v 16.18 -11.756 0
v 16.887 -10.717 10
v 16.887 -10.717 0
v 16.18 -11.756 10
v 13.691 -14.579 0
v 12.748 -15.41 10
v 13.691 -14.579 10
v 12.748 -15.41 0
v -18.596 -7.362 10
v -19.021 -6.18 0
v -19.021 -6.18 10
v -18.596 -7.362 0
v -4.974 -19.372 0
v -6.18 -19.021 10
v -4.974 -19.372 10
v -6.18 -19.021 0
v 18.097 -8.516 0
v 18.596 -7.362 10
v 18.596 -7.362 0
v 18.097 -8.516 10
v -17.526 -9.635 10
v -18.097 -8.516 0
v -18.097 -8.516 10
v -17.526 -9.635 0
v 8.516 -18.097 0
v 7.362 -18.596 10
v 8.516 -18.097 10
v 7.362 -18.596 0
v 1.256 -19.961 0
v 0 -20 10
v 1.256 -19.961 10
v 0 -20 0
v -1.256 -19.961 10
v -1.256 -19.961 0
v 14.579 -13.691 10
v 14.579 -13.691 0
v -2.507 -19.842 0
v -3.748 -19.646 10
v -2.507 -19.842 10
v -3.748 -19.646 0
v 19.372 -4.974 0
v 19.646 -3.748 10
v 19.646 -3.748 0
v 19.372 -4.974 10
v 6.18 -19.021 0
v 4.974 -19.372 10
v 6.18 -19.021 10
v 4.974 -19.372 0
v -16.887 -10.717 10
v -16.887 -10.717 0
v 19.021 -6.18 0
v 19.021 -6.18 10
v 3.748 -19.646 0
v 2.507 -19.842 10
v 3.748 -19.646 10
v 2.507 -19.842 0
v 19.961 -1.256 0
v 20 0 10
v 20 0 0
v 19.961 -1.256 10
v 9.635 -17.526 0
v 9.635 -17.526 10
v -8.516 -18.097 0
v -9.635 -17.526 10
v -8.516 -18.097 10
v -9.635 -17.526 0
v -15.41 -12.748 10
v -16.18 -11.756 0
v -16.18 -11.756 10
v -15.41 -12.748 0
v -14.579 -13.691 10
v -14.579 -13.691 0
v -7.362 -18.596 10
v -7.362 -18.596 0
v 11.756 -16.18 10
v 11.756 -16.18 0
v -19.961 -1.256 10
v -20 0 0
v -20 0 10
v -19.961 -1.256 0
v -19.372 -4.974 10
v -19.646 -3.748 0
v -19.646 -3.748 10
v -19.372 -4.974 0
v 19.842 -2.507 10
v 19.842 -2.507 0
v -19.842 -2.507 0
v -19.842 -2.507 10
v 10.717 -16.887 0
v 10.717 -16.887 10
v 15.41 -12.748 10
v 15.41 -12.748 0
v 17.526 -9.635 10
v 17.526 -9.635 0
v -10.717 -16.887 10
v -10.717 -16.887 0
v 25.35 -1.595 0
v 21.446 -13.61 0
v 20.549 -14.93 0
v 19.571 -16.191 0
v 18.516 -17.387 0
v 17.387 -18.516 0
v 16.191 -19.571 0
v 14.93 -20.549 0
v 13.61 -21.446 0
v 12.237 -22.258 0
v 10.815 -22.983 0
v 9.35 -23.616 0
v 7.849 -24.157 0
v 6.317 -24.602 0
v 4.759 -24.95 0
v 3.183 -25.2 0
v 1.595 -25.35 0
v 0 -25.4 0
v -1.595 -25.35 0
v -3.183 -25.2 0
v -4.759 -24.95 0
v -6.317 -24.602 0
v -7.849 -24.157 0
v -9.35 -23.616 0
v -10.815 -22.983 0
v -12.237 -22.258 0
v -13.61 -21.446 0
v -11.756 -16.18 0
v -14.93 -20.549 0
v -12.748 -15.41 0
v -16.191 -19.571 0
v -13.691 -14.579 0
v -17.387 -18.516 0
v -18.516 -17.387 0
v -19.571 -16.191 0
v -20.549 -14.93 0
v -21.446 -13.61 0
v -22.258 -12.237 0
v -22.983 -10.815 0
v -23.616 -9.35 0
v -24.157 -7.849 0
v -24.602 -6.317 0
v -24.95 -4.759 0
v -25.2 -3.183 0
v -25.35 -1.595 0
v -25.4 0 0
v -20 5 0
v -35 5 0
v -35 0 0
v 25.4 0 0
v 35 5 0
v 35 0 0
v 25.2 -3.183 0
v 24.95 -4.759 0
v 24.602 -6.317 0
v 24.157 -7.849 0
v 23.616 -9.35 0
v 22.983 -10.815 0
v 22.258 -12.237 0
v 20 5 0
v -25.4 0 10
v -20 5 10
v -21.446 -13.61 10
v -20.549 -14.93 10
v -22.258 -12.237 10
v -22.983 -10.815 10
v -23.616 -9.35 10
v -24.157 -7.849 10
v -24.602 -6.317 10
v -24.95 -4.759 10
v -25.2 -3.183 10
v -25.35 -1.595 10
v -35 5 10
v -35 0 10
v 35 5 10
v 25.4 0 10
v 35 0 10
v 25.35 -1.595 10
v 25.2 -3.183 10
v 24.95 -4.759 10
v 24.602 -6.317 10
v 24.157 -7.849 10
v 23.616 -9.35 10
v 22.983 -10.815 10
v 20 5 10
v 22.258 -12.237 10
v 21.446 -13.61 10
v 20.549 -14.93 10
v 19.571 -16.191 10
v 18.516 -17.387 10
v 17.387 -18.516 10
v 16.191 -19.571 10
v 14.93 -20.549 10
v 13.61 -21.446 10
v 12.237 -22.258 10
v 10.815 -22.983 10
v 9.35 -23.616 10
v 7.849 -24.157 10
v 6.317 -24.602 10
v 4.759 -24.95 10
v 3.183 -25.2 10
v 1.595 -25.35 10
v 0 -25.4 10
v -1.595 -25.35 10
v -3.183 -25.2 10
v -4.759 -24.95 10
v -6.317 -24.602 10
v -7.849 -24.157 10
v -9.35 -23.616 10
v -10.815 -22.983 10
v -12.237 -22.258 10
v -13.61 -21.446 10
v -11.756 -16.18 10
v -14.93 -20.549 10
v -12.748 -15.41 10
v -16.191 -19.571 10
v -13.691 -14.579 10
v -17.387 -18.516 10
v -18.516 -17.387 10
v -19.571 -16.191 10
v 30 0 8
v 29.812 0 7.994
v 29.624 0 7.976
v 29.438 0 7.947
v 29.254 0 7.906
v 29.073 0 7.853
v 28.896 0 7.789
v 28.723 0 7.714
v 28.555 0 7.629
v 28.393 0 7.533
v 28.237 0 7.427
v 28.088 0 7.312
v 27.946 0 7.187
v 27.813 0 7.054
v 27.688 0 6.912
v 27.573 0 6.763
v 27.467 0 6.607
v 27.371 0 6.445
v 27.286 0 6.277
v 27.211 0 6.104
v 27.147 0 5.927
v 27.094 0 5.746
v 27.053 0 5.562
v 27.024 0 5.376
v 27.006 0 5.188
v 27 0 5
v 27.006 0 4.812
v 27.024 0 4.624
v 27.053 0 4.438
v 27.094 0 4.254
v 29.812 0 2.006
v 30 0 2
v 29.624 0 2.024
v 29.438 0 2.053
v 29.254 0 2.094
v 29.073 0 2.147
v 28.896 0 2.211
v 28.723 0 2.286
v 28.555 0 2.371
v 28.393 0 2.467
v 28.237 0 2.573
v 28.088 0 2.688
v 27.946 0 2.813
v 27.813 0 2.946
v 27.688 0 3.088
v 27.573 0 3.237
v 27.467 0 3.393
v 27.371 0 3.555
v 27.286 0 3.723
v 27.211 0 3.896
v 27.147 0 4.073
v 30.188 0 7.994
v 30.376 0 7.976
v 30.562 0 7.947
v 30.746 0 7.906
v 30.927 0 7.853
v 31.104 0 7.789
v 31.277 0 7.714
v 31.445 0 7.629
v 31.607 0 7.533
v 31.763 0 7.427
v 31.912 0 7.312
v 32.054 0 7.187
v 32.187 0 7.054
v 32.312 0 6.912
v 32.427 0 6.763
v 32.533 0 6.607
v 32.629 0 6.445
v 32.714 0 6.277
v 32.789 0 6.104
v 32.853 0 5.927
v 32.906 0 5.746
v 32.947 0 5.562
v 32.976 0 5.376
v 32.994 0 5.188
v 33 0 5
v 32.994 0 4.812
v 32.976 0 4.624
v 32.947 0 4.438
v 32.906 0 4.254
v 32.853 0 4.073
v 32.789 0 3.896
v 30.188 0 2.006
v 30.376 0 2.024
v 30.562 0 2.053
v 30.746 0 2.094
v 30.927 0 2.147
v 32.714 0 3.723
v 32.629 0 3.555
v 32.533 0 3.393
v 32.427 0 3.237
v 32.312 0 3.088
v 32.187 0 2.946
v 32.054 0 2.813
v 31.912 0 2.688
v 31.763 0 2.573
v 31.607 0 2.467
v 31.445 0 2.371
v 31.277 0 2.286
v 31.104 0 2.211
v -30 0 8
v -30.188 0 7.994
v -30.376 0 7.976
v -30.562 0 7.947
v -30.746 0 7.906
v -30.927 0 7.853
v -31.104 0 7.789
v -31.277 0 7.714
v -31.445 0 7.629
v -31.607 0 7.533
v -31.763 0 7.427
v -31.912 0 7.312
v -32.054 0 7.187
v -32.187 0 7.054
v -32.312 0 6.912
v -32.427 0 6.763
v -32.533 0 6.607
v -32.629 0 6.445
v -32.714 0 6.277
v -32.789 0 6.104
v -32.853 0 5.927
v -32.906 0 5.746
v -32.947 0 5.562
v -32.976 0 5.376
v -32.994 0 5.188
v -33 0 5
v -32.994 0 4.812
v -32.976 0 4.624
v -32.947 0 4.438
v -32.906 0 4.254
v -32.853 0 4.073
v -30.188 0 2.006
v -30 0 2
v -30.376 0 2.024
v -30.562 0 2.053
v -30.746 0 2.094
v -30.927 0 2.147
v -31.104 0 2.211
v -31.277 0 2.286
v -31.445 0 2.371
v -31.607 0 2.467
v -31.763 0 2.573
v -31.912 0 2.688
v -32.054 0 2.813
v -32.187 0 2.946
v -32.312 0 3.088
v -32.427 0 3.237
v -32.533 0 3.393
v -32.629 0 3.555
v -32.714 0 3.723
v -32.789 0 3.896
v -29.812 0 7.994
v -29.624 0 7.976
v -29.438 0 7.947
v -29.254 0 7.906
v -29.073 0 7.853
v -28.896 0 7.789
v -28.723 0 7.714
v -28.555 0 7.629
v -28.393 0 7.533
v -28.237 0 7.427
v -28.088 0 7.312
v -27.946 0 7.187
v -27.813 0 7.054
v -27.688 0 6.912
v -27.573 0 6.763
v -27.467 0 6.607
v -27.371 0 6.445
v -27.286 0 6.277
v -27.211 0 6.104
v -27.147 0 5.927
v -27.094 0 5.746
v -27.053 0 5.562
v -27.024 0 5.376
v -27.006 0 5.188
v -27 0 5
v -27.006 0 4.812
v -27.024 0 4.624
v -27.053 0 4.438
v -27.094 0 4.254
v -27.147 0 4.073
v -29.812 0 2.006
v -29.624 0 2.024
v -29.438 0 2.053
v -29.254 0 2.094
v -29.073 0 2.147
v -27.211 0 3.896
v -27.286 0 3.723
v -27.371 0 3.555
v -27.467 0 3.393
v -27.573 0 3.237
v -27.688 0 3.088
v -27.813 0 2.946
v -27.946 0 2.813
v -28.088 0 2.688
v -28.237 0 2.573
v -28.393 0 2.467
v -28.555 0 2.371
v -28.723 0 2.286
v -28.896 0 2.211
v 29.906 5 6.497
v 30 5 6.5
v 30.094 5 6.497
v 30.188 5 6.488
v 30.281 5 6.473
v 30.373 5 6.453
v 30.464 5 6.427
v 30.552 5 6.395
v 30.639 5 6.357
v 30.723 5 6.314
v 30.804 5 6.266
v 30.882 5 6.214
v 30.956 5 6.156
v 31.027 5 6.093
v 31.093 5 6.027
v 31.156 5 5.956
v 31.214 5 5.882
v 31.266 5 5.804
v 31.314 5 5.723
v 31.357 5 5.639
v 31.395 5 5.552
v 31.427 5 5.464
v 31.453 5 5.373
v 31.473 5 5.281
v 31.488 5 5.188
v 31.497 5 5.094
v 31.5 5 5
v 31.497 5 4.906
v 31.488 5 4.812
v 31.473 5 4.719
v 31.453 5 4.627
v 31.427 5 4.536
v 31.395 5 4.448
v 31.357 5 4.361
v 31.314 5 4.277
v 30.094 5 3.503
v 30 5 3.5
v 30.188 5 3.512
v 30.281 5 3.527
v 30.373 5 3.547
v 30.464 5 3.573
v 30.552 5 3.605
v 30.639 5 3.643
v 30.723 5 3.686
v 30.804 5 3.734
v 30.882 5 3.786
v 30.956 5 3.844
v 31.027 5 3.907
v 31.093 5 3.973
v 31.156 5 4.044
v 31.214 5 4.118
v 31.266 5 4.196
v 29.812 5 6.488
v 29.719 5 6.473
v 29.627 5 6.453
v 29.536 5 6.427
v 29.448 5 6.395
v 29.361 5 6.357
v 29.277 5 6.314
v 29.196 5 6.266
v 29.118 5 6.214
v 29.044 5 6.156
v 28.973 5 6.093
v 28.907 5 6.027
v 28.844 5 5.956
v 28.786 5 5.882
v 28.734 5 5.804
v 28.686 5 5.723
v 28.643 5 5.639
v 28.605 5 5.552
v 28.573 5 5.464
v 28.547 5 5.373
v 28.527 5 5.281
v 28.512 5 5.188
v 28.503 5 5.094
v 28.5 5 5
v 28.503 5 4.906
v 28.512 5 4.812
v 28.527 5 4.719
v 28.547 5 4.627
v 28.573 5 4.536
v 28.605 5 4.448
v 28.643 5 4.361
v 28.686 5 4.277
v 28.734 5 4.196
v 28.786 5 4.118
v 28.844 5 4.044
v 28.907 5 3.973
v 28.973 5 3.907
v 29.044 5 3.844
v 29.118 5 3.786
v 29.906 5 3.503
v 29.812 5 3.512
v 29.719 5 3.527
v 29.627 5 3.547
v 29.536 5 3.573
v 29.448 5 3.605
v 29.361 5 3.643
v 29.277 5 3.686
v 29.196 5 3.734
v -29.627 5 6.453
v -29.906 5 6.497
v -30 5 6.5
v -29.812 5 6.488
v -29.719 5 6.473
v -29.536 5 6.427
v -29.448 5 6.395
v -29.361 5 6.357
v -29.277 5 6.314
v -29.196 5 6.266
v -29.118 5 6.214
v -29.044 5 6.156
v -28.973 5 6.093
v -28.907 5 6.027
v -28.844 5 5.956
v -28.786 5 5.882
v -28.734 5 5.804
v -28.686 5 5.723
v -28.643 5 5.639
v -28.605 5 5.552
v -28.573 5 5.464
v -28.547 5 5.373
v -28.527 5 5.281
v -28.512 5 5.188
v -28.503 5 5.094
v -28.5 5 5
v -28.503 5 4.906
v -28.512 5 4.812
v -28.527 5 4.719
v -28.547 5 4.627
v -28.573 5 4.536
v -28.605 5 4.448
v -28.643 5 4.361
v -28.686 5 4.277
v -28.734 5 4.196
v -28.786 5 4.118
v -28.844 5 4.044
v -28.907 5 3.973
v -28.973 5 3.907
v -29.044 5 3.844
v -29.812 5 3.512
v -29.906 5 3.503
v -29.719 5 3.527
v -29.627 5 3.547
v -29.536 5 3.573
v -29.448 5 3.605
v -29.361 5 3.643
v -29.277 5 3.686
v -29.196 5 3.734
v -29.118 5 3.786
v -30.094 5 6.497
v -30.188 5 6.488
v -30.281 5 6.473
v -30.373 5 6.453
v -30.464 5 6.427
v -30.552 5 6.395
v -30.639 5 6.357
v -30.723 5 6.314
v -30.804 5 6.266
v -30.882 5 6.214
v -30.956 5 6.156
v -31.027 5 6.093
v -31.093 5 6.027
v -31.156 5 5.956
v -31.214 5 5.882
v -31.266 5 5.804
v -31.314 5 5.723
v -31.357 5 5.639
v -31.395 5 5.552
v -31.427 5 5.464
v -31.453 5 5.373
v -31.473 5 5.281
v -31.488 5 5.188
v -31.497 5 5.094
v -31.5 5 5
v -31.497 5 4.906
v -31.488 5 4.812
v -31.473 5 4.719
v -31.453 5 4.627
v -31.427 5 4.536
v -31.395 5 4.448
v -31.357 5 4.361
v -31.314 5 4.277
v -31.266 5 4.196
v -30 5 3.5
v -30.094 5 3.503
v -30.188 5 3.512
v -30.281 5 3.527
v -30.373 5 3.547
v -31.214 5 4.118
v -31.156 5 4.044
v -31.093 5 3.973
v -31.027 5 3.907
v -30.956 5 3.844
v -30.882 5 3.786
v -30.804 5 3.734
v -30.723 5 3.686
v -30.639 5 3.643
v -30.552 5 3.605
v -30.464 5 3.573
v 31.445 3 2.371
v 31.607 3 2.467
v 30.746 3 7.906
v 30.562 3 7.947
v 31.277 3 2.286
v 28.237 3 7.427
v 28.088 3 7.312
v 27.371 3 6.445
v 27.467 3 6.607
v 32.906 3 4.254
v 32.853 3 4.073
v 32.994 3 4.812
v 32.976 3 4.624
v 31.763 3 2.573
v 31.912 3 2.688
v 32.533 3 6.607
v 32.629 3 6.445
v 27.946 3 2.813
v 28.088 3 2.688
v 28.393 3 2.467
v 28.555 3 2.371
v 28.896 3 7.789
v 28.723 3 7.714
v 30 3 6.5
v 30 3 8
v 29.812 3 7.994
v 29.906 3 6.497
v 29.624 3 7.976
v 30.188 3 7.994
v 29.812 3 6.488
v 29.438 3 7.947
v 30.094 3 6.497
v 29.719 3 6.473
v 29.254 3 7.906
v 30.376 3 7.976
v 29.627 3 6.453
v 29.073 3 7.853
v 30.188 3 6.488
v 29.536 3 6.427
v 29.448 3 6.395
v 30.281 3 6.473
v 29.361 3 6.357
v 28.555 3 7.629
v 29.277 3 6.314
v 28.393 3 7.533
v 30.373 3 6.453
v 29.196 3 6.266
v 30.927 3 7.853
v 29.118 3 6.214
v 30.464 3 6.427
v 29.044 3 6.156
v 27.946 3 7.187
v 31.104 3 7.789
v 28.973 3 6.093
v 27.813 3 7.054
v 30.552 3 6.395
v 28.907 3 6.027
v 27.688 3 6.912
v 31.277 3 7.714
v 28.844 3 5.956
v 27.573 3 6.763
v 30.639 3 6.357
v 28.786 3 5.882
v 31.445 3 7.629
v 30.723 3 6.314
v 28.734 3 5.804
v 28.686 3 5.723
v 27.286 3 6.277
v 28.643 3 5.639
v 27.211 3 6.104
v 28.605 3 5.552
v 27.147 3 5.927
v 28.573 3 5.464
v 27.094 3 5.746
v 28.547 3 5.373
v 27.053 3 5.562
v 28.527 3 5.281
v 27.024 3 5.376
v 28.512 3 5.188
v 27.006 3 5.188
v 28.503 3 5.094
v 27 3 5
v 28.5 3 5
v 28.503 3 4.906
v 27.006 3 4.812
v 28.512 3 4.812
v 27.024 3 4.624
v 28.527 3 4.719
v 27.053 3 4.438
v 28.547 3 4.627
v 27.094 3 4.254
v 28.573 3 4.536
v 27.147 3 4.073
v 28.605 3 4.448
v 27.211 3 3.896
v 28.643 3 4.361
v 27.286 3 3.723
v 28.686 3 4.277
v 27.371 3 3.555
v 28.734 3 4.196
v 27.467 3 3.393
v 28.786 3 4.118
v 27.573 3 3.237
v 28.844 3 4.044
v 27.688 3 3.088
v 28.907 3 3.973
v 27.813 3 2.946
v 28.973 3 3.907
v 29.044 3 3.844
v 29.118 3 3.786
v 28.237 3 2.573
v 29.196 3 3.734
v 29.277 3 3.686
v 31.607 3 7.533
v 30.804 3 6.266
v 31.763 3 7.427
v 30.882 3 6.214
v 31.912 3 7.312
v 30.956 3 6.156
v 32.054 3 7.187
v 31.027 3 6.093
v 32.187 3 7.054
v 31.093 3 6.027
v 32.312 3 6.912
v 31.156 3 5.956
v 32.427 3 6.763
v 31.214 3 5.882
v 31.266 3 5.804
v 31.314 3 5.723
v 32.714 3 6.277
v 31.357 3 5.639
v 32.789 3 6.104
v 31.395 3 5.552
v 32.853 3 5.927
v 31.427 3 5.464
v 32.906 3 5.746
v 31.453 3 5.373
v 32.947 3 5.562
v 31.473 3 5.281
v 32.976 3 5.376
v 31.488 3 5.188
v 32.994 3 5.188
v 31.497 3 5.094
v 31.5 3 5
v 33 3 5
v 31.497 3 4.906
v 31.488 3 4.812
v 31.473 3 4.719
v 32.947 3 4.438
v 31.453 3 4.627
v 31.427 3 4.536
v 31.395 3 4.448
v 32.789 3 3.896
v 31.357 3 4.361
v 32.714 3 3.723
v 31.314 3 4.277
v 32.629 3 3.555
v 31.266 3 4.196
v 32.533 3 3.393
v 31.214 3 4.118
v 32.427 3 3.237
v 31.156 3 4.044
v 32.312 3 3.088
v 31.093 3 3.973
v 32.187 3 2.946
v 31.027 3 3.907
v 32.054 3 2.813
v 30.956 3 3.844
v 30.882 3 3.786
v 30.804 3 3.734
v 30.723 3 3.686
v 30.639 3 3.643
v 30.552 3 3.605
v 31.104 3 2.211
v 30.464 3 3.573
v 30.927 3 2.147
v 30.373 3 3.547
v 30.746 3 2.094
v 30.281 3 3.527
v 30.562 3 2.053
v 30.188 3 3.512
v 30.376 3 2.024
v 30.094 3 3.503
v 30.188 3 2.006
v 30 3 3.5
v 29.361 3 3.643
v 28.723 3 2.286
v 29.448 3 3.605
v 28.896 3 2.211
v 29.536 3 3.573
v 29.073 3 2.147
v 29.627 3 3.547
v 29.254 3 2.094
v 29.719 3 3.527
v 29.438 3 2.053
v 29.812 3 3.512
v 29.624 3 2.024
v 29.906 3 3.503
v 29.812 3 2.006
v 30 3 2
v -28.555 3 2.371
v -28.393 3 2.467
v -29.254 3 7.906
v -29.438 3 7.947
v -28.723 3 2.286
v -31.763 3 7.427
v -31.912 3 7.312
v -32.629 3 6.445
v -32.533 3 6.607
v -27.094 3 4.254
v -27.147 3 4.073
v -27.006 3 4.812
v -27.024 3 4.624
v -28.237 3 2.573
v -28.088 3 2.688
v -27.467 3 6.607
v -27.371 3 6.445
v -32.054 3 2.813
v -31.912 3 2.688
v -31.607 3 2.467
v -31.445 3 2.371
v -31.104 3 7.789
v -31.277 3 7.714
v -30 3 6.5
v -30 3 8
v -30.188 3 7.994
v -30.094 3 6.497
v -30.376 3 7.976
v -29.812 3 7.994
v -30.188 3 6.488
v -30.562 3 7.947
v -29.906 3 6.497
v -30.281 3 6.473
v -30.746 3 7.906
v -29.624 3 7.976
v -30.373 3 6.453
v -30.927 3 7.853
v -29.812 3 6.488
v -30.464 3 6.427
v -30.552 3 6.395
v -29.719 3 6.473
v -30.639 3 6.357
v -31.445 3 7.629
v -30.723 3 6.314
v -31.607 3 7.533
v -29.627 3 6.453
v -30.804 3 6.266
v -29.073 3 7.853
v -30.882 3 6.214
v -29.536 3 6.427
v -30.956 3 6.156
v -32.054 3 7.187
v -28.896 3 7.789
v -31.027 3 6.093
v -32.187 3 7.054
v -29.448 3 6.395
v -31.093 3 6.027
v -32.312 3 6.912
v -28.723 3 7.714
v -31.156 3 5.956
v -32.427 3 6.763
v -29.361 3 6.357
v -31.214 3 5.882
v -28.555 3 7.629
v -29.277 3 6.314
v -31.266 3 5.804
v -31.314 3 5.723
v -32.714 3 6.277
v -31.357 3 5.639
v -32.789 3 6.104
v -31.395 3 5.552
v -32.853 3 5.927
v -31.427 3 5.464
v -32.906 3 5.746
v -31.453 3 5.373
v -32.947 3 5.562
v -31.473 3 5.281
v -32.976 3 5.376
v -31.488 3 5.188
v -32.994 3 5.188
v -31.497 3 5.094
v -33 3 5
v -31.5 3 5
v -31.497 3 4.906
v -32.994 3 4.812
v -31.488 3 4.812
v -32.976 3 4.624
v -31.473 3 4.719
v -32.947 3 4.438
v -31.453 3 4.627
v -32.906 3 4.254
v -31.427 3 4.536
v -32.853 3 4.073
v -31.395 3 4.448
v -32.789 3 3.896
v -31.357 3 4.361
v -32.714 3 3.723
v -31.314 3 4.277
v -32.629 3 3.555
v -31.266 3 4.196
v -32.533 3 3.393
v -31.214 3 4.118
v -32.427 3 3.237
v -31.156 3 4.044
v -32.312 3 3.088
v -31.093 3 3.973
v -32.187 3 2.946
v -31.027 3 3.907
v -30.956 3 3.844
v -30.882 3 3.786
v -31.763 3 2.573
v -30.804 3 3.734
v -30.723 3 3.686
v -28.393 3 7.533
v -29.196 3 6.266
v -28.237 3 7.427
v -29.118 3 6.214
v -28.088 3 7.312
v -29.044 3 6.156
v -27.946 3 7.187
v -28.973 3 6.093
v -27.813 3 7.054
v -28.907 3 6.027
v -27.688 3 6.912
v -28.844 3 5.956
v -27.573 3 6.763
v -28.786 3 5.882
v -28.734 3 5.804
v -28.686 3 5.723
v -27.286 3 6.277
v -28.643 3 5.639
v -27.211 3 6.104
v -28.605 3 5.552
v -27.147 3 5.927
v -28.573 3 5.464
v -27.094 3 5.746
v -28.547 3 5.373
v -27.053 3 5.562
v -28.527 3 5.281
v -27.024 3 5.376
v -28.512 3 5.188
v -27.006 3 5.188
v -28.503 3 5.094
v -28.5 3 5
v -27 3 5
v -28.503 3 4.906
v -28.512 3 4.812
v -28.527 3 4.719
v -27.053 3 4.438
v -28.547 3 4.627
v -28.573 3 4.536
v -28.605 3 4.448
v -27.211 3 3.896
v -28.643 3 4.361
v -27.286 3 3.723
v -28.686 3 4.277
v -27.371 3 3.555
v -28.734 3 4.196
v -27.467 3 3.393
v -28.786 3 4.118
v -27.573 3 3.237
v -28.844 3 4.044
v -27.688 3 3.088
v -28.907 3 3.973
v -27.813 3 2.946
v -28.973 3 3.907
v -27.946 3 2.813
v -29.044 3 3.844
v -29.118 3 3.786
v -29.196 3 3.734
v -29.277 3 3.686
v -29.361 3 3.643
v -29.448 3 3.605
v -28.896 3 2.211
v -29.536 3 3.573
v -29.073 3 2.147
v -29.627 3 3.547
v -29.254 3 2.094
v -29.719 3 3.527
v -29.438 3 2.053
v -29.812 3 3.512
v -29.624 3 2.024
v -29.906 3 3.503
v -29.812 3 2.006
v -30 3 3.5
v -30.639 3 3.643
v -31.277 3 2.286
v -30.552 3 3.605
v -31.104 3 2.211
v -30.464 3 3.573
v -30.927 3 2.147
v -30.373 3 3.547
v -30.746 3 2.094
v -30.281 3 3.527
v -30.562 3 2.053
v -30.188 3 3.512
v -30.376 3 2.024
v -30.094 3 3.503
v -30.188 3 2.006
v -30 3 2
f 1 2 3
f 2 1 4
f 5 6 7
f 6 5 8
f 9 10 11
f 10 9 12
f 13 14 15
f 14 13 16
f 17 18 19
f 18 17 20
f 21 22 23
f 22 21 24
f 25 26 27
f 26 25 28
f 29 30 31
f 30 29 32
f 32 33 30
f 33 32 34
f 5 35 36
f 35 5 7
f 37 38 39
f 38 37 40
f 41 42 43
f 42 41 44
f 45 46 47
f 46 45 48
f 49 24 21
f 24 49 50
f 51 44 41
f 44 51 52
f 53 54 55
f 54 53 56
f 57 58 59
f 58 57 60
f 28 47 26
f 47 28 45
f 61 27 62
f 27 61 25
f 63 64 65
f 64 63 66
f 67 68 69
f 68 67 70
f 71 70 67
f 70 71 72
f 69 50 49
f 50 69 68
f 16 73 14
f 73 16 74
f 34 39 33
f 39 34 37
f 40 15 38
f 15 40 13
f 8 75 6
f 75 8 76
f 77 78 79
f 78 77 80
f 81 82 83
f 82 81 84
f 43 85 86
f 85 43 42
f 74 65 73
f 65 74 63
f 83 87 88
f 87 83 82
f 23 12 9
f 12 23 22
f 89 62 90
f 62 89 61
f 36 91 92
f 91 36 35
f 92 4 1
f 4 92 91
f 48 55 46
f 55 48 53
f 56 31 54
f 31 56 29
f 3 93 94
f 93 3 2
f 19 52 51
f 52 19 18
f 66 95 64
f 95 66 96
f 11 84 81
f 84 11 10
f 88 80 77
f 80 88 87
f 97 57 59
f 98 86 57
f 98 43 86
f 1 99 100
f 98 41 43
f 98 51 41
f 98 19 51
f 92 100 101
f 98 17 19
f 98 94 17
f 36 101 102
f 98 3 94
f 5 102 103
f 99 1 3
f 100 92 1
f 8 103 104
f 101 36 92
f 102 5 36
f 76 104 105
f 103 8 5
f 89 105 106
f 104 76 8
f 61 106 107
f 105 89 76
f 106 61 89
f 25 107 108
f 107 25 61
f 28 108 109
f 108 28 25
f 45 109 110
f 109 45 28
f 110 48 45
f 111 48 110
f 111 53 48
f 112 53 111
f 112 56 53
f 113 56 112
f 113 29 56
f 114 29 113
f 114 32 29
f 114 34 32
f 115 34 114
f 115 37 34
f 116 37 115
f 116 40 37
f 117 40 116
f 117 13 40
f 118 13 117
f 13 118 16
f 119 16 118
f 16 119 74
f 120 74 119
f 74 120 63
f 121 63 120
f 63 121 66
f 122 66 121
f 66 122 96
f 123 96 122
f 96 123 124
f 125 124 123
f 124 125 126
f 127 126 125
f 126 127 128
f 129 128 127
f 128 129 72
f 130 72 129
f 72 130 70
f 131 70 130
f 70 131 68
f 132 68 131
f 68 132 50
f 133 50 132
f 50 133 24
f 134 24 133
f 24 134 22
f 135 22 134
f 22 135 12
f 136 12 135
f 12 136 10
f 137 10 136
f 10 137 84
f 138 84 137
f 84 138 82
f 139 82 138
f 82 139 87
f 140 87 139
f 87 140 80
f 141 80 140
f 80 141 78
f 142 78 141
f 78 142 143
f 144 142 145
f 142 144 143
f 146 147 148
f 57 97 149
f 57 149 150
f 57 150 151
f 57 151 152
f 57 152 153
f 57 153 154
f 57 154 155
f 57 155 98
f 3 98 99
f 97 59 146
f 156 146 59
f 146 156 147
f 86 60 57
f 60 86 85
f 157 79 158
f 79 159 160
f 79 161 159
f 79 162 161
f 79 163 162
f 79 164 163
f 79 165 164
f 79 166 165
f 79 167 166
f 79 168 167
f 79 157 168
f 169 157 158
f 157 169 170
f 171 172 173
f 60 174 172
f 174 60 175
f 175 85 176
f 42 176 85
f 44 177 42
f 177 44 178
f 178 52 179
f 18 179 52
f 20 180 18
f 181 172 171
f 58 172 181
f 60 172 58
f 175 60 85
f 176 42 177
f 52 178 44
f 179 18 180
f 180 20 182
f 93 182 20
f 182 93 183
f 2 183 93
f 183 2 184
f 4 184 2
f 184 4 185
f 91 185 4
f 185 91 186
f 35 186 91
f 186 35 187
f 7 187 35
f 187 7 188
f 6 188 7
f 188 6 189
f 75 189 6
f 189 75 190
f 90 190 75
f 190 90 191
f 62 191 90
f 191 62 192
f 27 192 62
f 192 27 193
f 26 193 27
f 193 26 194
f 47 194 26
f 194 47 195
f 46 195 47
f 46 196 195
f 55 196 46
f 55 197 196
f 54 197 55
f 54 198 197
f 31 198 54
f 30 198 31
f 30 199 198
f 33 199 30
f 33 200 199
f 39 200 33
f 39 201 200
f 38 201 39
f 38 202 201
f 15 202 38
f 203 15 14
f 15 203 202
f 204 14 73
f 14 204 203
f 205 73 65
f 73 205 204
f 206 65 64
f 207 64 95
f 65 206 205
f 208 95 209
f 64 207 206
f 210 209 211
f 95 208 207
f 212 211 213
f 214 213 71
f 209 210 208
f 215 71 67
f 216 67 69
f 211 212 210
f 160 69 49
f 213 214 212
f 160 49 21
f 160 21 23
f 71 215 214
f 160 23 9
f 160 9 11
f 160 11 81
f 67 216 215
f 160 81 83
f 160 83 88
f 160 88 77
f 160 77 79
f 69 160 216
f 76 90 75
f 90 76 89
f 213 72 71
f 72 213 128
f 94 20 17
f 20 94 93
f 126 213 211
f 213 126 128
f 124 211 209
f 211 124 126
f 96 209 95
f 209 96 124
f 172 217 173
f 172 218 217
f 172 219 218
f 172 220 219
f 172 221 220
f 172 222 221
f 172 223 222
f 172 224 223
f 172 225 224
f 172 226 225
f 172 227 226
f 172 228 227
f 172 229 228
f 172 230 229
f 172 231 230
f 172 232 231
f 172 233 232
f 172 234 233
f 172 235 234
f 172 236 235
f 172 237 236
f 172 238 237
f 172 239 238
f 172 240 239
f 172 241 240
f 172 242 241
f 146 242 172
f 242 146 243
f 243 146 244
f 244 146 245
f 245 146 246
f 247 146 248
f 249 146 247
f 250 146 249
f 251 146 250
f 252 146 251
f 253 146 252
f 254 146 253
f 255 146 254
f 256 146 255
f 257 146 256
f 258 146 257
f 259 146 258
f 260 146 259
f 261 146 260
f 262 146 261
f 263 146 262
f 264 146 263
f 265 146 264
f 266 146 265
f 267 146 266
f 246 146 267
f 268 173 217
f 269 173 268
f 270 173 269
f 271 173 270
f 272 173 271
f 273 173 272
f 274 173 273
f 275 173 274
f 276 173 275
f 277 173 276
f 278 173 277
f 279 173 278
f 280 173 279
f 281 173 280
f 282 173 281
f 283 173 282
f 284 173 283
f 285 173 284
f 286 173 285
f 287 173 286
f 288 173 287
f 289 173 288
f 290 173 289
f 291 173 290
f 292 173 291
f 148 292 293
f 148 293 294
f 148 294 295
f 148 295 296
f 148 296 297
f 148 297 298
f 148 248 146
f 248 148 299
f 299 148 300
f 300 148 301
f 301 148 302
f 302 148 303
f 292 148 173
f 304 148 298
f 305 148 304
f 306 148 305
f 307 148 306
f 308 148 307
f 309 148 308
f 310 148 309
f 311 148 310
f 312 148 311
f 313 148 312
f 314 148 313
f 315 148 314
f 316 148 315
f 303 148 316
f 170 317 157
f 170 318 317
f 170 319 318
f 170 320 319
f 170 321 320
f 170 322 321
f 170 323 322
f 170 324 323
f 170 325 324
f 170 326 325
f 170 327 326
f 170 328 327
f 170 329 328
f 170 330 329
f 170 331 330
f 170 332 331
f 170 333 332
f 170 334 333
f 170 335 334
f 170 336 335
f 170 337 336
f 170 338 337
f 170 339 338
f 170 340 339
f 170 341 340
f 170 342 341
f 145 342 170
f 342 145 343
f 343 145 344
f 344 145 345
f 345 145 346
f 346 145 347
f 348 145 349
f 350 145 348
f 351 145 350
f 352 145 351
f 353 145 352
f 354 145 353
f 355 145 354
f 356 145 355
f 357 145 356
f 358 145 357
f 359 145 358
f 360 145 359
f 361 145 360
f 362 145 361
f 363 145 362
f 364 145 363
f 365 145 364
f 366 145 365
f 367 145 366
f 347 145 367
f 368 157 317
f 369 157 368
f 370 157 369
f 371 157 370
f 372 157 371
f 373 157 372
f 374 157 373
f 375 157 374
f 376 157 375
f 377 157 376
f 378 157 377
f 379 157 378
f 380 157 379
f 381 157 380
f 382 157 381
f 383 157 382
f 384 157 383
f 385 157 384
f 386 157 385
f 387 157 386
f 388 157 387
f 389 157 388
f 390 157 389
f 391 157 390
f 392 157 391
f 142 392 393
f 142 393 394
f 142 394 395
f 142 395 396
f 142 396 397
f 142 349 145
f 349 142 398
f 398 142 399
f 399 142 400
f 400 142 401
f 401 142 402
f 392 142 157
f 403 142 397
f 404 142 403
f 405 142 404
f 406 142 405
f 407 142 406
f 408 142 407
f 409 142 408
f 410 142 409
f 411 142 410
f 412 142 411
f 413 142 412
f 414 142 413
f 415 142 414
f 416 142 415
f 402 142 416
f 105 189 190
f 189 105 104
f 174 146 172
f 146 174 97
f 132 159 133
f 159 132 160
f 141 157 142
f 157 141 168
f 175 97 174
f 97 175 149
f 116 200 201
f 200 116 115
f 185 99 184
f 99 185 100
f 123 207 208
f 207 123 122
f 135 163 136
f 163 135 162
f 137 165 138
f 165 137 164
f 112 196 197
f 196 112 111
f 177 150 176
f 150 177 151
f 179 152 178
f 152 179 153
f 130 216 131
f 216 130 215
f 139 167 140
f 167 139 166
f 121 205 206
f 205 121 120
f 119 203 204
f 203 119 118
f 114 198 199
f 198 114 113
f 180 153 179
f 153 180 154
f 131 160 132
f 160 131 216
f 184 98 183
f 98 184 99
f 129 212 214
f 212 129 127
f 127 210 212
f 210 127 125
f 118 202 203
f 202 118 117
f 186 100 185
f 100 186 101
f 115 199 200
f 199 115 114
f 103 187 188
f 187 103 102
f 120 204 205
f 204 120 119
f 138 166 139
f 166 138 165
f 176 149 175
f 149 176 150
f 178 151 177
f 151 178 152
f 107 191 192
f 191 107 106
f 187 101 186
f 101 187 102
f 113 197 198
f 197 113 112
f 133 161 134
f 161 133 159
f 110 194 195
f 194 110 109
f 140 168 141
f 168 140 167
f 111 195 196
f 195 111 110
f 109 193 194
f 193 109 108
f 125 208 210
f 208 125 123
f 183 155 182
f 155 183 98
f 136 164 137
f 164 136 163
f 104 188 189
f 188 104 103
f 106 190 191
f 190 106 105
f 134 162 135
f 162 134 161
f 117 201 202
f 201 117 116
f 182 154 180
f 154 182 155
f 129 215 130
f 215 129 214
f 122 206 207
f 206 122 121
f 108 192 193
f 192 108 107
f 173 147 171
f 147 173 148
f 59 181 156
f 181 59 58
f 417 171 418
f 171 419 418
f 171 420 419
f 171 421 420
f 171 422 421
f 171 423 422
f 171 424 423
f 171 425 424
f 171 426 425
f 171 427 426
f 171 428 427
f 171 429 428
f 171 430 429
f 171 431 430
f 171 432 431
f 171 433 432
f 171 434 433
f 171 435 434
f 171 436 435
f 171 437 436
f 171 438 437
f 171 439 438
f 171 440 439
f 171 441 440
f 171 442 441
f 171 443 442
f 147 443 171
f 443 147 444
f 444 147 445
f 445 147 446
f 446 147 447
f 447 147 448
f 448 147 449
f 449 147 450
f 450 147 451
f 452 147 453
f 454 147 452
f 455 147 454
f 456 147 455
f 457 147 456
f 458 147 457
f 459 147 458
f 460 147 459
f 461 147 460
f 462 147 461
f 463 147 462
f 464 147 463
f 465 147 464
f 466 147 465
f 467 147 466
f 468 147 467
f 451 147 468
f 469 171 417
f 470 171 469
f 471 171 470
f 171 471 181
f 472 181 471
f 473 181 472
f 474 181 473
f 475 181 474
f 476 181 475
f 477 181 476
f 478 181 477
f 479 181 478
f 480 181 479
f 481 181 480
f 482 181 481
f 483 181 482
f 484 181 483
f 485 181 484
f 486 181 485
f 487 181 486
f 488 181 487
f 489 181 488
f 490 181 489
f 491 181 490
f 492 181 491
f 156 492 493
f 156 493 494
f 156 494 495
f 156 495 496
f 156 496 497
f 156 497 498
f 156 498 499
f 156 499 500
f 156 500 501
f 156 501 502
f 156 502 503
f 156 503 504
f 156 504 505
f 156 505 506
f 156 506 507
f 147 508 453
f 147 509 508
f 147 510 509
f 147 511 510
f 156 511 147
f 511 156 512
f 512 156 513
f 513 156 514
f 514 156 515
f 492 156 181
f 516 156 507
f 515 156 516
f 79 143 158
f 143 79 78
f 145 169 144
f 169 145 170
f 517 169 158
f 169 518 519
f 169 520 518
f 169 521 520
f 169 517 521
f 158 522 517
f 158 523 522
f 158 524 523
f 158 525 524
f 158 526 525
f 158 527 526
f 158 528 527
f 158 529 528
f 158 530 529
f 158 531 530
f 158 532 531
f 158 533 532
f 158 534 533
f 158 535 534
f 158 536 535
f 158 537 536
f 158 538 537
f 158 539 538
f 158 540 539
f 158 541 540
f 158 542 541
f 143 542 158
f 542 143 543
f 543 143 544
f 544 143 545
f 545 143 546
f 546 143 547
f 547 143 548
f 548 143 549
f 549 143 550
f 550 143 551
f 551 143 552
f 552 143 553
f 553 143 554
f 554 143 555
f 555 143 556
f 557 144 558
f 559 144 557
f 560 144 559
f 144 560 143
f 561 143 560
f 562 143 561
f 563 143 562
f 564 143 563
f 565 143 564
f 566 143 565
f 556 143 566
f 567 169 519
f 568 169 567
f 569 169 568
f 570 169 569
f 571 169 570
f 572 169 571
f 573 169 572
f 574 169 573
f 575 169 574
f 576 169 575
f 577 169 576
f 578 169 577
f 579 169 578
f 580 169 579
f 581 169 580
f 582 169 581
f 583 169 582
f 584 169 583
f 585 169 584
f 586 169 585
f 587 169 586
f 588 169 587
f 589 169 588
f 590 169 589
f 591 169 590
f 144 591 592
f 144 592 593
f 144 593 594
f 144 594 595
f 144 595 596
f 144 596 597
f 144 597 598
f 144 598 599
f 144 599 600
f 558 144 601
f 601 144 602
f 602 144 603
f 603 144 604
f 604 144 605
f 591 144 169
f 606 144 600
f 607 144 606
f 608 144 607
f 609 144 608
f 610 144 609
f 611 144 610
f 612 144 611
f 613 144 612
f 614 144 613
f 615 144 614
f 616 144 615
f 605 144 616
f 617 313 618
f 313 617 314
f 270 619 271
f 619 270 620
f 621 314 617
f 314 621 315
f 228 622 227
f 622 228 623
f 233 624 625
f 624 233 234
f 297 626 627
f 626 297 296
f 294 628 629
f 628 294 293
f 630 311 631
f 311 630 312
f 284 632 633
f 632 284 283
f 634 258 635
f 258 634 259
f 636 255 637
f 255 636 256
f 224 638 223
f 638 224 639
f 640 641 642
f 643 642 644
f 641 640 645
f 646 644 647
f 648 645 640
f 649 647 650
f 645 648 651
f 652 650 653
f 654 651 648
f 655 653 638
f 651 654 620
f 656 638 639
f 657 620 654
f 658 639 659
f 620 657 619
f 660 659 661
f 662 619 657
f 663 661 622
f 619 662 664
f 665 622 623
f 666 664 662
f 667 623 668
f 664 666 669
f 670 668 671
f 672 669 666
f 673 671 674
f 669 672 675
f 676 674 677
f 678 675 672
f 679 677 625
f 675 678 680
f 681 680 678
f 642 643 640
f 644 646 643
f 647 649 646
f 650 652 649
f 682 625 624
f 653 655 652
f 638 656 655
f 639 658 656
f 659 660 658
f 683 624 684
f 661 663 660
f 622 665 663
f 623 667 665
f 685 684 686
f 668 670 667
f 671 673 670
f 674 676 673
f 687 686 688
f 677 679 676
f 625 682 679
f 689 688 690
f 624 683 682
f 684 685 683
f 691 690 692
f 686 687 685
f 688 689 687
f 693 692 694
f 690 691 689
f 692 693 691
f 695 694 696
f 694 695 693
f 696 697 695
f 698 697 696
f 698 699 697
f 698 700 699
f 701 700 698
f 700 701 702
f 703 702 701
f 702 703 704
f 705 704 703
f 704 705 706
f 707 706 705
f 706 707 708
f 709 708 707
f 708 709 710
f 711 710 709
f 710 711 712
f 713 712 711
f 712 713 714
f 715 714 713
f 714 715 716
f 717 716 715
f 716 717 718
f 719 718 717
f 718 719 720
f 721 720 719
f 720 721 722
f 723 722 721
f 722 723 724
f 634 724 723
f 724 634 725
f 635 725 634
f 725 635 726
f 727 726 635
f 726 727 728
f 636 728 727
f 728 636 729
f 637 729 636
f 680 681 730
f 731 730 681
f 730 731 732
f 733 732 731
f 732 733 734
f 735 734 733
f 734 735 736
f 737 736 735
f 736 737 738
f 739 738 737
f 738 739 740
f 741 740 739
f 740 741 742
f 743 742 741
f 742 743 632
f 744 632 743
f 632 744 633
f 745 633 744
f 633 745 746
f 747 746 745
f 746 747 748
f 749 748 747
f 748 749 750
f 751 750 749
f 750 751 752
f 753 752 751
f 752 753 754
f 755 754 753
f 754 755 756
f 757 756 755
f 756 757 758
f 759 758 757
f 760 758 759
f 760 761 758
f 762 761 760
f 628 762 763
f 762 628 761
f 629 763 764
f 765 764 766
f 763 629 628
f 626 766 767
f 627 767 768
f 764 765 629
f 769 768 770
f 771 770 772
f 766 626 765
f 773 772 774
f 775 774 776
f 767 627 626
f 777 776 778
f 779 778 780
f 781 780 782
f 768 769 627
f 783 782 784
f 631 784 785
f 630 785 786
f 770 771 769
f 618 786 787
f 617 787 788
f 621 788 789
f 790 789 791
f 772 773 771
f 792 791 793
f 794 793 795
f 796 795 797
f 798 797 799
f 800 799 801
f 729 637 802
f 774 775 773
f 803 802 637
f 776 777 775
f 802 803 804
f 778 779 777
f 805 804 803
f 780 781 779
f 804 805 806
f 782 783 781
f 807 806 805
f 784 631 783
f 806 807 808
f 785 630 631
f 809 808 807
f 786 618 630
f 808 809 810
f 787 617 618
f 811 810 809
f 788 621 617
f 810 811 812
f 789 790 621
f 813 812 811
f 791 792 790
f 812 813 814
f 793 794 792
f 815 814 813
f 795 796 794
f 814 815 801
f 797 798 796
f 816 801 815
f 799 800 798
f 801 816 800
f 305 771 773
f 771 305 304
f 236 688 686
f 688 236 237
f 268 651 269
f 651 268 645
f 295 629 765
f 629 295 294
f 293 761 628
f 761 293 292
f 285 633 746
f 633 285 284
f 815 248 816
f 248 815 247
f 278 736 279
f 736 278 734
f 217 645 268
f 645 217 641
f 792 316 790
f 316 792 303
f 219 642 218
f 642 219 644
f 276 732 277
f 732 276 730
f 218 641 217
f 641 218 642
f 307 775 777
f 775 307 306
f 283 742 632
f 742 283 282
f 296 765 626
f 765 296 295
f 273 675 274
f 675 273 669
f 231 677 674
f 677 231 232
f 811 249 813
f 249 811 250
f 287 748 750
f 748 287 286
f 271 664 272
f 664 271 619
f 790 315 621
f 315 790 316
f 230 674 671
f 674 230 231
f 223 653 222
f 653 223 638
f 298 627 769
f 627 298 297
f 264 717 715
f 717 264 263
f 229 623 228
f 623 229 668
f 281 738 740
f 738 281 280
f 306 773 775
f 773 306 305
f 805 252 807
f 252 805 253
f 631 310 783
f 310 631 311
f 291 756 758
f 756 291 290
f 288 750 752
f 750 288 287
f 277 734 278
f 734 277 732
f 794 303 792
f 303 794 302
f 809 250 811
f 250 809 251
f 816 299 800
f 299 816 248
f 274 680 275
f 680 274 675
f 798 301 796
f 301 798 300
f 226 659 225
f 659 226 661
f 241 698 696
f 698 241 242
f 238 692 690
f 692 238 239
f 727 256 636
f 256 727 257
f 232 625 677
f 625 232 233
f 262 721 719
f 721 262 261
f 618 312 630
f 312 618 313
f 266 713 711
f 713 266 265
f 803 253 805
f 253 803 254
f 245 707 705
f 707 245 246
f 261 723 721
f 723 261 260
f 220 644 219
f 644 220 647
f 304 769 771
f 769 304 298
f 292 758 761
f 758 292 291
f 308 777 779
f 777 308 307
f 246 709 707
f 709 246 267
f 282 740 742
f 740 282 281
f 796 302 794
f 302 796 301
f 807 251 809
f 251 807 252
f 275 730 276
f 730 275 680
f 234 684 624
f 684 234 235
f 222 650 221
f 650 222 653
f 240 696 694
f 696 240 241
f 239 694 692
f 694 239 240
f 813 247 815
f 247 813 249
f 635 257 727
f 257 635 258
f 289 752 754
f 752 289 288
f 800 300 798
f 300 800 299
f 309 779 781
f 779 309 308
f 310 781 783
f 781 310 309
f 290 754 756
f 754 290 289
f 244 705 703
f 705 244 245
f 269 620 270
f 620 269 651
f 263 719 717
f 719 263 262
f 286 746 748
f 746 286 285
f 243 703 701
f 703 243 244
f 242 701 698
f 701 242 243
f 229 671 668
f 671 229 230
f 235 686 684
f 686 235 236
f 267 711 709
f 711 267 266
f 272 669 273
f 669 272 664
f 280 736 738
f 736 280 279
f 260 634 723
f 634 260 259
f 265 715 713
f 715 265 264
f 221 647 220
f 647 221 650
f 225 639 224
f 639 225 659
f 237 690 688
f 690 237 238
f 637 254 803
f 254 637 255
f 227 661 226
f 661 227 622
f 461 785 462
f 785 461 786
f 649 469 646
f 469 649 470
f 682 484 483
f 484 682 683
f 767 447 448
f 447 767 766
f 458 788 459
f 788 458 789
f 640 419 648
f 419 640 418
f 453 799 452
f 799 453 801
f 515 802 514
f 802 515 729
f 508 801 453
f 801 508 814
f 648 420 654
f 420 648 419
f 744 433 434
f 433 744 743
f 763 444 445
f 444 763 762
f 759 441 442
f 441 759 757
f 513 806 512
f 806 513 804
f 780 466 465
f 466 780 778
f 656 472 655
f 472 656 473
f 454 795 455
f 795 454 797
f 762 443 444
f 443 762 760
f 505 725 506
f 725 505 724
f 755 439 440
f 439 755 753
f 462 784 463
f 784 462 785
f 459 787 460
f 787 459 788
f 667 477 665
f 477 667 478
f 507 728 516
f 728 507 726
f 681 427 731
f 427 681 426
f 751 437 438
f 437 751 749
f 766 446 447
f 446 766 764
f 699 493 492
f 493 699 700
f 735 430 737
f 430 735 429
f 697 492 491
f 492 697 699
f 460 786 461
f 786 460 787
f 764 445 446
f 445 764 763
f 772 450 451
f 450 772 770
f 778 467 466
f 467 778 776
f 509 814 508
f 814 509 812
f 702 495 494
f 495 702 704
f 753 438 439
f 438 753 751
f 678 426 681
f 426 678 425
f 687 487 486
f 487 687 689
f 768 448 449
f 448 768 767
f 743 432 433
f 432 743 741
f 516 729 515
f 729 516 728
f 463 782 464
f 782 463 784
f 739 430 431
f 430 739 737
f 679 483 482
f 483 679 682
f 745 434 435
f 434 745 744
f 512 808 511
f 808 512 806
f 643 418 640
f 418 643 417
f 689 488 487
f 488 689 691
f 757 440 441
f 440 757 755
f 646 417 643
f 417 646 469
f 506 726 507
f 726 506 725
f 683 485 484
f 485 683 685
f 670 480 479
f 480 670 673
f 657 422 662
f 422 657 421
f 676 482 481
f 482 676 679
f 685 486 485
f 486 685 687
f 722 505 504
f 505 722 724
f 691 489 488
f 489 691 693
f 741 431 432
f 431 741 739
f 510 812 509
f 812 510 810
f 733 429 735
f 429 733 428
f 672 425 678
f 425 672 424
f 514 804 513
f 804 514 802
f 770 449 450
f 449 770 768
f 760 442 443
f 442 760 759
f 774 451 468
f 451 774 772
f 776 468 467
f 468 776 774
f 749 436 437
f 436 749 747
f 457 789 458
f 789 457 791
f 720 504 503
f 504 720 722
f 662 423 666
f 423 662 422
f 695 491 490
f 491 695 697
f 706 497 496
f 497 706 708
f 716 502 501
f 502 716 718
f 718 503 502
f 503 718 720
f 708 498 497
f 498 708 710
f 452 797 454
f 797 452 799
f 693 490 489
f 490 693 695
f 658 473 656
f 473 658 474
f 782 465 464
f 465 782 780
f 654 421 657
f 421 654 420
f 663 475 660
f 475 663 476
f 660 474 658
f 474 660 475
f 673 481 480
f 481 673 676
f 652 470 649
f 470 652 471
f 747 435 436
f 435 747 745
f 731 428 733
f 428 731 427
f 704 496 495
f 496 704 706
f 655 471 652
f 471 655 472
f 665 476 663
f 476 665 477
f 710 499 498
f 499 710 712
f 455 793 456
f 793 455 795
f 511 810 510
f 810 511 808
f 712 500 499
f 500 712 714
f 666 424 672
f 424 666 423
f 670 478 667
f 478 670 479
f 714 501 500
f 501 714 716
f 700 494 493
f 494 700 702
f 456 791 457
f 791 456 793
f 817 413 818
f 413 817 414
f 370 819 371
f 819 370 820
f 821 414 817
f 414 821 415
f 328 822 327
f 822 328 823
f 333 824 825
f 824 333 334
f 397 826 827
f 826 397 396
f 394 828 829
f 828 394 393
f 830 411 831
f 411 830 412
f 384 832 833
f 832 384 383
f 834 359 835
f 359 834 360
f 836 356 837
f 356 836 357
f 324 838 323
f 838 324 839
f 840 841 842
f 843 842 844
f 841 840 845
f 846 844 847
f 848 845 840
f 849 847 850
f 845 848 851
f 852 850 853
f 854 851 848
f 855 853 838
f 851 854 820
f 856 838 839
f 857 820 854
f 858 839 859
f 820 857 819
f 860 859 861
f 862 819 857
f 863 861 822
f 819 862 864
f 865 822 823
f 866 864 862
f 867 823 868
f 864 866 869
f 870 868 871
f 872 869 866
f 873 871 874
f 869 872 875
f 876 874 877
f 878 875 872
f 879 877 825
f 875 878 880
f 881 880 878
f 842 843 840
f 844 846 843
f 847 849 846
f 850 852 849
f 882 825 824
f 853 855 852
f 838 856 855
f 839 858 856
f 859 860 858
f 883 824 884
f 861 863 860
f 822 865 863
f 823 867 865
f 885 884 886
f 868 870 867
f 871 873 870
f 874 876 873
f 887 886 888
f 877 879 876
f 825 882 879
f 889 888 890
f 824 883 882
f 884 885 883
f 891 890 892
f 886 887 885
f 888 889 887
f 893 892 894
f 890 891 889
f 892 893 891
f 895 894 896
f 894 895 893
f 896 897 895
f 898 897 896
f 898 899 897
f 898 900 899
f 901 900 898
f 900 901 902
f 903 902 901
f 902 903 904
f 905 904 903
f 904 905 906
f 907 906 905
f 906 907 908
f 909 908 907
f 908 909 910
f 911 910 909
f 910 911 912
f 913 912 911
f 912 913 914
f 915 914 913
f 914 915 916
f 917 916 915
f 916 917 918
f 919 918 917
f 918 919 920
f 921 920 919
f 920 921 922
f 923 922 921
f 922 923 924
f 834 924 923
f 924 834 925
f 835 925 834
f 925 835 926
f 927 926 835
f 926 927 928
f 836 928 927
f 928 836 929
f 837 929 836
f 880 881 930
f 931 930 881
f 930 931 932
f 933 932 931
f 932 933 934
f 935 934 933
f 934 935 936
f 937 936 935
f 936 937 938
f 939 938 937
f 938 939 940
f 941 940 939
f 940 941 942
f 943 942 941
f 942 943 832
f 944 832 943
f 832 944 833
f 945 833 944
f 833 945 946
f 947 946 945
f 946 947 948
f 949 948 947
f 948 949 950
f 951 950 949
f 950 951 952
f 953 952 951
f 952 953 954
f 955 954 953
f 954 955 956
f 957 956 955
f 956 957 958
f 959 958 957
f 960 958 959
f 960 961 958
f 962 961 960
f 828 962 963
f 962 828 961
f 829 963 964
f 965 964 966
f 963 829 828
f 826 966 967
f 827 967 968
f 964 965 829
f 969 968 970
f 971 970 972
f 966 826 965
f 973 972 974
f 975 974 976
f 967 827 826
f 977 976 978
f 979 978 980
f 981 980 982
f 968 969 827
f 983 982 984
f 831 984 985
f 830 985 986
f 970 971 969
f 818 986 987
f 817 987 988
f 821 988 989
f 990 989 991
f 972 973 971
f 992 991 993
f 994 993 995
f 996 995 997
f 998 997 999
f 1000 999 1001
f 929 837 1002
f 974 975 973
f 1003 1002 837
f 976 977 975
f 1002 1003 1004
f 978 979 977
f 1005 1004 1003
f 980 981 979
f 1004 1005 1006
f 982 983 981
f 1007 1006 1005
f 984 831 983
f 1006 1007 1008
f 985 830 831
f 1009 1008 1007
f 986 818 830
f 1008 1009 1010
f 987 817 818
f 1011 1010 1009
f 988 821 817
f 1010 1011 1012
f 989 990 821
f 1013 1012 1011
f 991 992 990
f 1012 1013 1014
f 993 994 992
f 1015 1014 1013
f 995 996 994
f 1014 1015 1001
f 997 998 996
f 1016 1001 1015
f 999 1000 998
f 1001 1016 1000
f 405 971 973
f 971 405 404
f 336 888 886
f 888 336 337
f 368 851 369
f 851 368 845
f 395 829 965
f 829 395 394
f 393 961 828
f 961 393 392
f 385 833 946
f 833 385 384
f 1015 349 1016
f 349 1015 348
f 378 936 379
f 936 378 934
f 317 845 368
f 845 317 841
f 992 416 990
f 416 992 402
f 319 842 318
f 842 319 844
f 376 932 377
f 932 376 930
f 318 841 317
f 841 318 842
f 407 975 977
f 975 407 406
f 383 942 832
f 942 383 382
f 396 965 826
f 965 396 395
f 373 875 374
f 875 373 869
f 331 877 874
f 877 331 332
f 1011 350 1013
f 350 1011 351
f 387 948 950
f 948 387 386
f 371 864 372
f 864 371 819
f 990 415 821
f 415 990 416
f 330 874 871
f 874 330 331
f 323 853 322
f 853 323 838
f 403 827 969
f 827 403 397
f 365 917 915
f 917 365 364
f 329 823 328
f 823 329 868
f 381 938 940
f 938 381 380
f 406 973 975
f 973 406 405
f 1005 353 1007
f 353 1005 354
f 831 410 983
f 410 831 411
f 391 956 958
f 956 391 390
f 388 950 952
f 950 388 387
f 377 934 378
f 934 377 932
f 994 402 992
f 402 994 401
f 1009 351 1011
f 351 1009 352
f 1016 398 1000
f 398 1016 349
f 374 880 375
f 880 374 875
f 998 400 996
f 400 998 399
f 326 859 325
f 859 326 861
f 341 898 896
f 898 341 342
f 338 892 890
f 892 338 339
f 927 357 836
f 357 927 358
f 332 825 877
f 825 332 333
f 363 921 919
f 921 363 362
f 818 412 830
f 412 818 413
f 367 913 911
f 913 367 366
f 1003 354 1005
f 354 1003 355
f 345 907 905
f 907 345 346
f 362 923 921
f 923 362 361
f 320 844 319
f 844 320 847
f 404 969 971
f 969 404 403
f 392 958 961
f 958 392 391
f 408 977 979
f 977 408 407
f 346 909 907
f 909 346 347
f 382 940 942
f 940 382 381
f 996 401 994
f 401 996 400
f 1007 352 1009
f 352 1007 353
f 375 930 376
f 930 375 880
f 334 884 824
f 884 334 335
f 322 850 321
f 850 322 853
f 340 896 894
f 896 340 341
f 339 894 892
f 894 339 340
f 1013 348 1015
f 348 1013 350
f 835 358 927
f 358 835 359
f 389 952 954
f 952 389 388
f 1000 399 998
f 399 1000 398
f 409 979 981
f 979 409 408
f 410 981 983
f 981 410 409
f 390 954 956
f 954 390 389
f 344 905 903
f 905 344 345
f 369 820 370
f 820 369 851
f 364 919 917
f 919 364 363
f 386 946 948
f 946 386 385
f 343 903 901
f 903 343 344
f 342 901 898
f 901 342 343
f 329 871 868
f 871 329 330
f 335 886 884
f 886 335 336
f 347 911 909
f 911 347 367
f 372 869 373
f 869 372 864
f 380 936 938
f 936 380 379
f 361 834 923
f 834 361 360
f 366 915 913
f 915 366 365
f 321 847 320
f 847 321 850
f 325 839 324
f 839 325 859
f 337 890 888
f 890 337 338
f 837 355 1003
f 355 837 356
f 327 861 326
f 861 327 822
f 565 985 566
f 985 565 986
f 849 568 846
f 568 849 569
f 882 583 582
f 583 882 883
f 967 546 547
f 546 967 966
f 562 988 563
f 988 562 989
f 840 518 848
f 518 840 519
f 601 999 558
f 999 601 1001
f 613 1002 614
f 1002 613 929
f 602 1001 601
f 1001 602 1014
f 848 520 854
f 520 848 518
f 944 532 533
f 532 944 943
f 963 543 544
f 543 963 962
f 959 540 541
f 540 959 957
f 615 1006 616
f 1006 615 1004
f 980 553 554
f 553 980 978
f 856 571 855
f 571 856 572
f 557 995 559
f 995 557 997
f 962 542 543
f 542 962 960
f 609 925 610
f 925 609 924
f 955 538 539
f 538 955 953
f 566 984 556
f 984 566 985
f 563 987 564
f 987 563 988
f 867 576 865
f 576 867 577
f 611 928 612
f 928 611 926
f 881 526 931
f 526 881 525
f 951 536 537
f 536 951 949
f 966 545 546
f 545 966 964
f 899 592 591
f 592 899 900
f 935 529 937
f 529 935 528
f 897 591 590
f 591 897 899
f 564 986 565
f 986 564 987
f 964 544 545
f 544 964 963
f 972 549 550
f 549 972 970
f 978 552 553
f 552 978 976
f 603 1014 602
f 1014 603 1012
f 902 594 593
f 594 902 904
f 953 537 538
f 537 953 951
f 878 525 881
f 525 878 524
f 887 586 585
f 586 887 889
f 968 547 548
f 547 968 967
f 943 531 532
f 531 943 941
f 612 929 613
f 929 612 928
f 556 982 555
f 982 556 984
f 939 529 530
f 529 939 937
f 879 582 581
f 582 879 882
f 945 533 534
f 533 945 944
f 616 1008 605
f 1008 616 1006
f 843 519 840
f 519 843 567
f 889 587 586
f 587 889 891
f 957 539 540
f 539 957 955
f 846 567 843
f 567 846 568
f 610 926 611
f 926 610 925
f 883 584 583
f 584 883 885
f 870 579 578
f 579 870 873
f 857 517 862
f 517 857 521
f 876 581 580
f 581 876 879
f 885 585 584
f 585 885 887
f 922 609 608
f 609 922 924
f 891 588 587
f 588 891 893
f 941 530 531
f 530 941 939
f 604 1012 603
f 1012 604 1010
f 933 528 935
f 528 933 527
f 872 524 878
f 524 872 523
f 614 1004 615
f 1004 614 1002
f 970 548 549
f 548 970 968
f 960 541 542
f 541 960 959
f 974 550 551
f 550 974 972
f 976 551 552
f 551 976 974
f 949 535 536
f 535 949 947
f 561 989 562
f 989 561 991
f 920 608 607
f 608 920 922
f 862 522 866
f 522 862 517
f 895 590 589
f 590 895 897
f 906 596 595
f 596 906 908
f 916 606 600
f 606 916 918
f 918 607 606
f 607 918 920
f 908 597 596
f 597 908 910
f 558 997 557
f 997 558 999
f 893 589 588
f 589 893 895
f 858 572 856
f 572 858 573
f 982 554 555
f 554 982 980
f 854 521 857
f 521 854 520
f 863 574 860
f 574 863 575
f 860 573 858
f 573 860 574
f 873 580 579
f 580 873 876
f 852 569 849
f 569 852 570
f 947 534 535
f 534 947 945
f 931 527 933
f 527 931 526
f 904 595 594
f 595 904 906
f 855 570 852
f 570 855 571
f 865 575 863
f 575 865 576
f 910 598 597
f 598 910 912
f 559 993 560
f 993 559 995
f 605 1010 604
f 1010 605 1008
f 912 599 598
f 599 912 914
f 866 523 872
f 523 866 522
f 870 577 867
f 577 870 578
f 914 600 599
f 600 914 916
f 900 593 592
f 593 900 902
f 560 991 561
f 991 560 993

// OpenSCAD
// file: nut.scad
// 1.5^2 + y^2 = 3^2
// sqrt(3^2 - 1.5^2)
//       30
//    /   |
// 60  - 90
// cos(30) = x / 3
// x = 3 cos(30)
module hex(side_length=3) {
  points = [[0,0], [side_length, 0], [side_length / 2, side_length * cos(30)]];
  for (i=[0:1:5]) {
    rotate([0,0,i * 60]) polygon(points);
  }
}

module hex_nut(side_length=3, height=2) {
    linear_extrude(height=height) hex(side_length);
}

module square_nut(side_length=5, height=2) {
    cube([5,5,2]);
}
// file: screw.scad
$fn=100;

module screw(screw_head_radius=3, screw_head_height=3, threaded_radius=1.5, threaded_height=10) {
  // screw head
  cylinder(h=screw_head_height, r=screw_head_radius);

  translate([0, 0, screw_head_height]) {
    cylinder(h=threaded_height, r=threaded_radius);
  }
}

// m3x10

screw(screw_head_radius=3, screw_head_height=3, threaded_radius=1.5, threaded_height=10);
// file: shoulder_strap_support_screws.scad
use <screw_with_nut.scad>
module shoulder_strap_support_screws() {
  // left hole
  translate([30,0,5]) {
    color([1, 0, 0]) rotate([-90,0,0]) screw_with_nut(threaded_height=6);
  }

  // right hole
  translate([-30,0,5]) {
    color([1, 0, 0]) rotate([-90,0,0]) screw_with_nut(threaded_height=6);
  }
}
// file: screw_with_nut.scad
use <screw.scad>
use <nut.scad>

module screw_with_nut(hex_nut_height=2, screw_head_height=3, threaded_height=10, threaded_radius=1.5, screw_head_radius=3, hex_nut_side_length=3, square_nut_height=2, square_nut_side_length=5, nut_type="hex") {
  screw(screw_head_radius=screw_head_radius, screw_head_height=screw_head_height, threaded_radius=threaded_radius, threaded_height=threaded_height);

  if (nut_type == "hex") {
    translate([0,0, screw_head_height + threaded_height - hex_nut_height]) {
      hex_nut(side_length=hex_nut_side_length, height=hex_nut_height);
    }
  } else {
    translate([
        -square_nut_side_length / 2,
        -square_nut_side_length / 2,
        screw_head_height + threaded_height - square_nut_height
    ]) {
      square_nut(side_length=square_nut_side_length, height=square_nut_height);
    }
  }
}

screw_with_nut(nut_type="square");
// main file
use <screw_with_nut.scad>
use <shoulder_strap_support_screws.scad>

$fn = 100;

module to_remove() {
  cylinder(h=10, r=20);
  translate([-50,0,0]) {
    cube([100, 100, 100]);
  }
}

module half_ring_without_holes() {
  difference() {
    cylinder(h=10, r=25.4);
    to_remove();
  }

  // left side support
  translate([20,0,0]) {
    cube([15,5,10]);
  }

  // right side support
  translate([-35,0,0]) {
    cube([15,5,10]);
  }
}

difference() {

  half_ring_without_holes();
  shoulder_strap_support_screws();
}


// to_remove();
